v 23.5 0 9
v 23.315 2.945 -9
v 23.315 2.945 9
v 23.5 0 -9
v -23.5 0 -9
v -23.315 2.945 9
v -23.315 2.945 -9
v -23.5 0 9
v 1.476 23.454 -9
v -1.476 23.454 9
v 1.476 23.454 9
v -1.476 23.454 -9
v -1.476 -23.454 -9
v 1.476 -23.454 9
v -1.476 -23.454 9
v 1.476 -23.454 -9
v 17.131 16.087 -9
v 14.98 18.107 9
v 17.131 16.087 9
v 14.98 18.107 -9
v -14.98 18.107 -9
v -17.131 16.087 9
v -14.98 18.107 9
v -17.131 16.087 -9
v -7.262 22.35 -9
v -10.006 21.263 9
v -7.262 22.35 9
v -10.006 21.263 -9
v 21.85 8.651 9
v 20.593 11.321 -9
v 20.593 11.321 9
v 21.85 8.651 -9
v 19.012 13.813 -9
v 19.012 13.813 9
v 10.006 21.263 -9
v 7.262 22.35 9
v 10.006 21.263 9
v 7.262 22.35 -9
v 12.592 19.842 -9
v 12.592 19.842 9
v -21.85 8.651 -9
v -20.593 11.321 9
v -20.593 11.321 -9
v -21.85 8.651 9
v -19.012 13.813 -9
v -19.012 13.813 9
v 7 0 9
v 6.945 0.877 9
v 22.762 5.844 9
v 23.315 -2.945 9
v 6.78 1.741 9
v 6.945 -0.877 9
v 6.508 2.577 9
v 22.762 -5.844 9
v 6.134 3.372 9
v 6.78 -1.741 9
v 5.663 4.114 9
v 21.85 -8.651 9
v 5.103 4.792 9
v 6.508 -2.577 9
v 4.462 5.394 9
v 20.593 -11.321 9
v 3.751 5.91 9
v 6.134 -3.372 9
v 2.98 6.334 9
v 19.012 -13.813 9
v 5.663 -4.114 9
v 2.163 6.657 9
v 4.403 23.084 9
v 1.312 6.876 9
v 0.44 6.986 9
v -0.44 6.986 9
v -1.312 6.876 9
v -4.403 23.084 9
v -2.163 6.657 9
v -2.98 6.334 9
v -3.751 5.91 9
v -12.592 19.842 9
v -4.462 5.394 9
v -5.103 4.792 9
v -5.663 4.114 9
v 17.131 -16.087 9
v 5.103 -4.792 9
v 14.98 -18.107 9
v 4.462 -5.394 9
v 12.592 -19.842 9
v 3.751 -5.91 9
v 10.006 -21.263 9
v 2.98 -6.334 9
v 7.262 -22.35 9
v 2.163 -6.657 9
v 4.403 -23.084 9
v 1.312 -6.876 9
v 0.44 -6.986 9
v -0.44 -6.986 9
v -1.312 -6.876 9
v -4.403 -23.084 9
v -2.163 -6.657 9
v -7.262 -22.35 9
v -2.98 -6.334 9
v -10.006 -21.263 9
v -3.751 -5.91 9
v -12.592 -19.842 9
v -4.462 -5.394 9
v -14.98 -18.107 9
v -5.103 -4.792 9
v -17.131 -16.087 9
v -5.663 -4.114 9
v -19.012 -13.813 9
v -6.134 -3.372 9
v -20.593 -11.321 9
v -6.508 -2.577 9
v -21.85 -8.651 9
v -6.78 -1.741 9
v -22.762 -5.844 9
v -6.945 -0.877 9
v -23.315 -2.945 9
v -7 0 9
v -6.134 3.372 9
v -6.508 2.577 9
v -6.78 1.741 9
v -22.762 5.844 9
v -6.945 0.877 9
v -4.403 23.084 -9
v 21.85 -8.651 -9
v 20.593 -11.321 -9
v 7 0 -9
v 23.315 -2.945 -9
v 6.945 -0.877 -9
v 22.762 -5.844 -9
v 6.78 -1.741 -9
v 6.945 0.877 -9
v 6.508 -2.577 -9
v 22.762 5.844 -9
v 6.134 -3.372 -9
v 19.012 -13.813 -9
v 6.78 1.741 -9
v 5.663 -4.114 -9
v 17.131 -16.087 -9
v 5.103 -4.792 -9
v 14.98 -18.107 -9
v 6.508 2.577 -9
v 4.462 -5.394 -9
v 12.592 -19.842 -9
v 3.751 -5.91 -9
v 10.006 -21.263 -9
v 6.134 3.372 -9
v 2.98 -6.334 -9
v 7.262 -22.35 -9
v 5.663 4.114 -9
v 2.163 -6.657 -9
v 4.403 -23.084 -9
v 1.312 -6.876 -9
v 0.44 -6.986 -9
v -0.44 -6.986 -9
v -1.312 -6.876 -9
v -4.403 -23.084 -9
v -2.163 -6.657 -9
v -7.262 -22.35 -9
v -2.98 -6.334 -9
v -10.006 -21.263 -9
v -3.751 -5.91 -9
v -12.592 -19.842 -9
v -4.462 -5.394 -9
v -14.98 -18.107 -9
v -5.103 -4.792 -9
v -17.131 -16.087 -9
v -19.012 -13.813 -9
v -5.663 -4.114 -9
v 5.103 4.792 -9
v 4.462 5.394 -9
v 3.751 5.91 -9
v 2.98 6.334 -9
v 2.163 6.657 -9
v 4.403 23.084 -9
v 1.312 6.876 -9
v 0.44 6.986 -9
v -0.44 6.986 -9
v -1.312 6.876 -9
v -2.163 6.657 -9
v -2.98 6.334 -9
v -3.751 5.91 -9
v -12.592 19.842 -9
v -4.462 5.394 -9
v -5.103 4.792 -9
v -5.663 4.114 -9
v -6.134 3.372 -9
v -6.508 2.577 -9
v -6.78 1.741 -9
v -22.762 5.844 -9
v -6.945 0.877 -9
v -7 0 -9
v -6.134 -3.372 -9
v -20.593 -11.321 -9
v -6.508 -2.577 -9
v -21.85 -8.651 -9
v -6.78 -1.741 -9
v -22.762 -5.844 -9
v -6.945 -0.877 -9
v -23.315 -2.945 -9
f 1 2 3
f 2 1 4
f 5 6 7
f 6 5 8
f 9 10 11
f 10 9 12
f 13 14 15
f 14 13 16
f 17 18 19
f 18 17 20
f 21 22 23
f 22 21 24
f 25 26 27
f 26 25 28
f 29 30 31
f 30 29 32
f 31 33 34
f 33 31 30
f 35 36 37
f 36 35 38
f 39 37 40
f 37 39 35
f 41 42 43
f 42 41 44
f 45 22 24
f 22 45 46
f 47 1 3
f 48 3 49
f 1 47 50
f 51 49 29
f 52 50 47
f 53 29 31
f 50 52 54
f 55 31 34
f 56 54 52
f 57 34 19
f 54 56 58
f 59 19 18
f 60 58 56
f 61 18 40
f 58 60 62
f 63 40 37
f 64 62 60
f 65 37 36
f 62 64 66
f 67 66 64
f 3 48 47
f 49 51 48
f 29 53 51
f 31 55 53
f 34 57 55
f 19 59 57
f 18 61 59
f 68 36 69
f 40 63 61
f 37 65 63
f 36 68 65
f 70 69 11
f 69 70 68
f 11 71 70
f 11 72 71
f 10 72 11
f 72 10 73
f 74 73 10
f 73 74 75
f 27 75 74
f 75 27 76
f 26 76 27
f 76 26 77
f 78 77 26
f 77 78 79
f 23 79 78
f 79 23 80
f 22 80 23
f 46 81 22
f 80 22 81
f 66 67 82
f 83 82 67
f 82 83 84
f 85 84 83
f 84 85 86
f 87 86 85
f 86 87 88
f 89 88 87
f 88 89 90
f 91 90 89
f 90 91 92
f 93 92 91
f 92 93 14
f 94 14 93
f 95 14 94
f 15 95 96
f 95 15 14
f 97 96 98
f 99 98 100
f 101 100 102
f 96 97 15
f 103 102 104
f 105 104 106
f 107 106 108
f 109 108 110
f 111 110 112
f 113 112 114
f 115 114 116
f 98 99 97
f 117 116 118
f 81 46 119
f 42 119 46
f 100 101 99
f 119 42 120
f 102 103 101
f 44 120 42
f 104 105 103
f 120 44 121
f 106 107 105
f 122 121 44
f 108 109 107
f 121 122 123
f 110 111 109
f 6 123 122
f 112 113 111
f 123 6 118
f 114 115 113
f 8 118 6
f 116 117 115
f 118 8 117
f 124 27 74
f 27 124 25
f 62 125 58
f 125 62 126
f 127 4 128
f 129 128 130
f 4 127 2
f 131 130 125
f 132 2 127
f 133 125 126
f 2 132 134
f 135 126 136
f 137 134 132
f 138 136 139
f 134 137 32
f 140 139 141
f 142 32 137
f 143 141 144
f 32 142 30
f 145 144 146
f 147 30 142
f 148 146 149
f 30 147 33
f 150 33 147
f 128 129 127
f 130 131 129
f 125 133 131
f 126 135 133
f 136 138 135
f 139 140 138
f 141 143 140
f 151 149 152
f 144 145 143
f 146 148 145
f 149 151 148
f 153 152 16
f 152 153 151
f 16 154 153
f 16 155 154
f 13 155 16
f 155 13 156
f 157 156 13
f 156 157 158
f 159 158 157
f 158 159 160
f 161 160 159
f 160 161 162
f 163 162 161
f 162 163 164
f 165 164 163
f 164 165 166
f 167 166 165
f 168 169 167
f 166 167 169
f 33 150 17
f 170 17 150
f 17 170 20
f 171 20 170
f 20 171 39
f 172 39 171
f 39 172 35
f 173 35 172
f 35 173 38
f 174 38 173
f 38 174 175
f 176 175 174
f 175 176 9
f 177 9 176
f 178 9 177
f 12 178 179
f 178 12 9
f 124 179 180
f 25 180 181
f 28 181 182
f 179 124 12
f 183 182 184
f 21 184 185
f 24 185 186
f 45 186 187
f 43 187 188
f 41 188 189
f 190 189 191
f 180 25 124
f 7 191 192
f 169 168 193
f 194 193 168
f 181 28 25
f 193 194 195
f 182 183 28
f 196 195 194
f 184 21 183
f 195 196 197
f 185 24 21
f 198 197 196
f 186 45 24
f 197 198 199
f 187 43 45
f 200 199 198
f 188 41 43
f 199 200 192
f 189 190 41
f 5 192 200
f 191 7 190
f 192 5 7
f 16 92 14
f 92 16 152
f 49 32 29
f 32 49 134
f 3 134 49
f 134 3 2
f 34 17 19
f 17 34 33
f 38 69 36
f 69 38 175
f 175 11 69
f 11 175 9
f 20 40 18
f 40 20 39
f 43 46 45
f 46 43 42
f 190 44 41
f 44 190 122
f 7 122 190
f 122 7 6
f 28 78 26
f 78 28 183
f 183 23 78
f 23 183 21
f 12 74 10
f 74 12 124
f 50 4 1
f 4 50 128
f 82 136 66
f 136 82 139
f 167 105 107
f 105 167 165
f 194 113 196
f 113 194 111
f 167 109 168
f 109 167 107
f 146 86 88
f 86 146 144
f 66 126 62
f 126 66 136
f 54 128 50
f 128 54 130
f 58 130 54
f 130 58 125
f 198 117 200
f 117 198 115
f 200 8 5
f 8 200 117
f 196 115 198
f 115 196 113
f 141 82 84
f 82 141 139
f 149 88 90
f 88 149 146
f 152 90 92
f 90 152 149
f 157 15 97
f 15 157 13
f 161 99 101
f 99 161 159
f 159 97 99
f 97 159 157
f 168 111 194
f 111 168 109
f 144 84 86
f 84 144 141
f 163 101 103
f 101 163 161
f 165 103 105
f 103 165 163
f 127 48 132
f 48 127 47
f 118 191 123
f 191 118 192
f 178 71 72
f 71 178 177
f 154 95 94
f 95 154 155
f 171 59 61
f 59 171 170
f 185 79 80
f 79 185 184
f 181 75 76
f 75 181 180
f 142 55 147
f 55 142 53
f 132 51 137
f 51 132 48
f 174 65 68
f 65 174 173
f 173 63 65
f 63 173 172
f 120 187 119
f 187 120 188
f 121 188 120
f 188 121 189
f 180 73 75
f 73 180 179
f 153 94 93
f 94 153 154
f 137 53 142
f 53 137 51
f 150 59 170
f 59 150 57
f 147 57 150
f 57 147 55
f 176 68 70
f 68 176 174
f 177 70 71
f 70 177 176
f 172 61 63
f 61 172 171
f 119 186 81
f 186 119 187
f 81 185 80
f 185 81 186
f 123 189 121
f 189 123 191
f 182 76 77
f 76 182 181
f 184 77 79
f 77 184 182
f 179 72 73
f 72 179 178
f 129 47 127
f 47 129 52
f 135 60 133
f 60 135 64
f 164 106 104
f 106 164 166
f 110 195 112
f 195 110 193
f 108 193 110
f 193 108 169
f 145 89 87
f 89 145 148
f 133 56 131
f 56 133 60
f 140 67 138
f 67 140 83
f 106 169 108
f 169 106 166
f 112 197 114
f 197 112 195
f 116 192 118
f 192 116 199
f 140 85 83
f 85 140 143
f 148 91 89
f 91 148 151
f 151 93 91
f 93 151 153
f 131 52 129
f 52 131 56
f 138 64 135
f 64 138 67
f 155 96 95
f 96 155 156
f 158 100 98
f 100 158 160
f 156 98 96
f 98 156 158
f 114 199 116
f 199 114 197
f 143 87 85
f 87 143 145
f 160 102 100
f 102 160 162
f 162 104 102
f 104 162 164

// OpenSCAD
$fn = 50;


difference() {
	union() {
		translate(v = [0, 0, -9.0000000000]) {
			cylinder(h = 18, r = 23.5000000000);
		}
	}
	union() {
		translate(v = [0, 0, -100.0000000000]) {
			cylinder(h = 200, r = 7);
		}
	}
}
